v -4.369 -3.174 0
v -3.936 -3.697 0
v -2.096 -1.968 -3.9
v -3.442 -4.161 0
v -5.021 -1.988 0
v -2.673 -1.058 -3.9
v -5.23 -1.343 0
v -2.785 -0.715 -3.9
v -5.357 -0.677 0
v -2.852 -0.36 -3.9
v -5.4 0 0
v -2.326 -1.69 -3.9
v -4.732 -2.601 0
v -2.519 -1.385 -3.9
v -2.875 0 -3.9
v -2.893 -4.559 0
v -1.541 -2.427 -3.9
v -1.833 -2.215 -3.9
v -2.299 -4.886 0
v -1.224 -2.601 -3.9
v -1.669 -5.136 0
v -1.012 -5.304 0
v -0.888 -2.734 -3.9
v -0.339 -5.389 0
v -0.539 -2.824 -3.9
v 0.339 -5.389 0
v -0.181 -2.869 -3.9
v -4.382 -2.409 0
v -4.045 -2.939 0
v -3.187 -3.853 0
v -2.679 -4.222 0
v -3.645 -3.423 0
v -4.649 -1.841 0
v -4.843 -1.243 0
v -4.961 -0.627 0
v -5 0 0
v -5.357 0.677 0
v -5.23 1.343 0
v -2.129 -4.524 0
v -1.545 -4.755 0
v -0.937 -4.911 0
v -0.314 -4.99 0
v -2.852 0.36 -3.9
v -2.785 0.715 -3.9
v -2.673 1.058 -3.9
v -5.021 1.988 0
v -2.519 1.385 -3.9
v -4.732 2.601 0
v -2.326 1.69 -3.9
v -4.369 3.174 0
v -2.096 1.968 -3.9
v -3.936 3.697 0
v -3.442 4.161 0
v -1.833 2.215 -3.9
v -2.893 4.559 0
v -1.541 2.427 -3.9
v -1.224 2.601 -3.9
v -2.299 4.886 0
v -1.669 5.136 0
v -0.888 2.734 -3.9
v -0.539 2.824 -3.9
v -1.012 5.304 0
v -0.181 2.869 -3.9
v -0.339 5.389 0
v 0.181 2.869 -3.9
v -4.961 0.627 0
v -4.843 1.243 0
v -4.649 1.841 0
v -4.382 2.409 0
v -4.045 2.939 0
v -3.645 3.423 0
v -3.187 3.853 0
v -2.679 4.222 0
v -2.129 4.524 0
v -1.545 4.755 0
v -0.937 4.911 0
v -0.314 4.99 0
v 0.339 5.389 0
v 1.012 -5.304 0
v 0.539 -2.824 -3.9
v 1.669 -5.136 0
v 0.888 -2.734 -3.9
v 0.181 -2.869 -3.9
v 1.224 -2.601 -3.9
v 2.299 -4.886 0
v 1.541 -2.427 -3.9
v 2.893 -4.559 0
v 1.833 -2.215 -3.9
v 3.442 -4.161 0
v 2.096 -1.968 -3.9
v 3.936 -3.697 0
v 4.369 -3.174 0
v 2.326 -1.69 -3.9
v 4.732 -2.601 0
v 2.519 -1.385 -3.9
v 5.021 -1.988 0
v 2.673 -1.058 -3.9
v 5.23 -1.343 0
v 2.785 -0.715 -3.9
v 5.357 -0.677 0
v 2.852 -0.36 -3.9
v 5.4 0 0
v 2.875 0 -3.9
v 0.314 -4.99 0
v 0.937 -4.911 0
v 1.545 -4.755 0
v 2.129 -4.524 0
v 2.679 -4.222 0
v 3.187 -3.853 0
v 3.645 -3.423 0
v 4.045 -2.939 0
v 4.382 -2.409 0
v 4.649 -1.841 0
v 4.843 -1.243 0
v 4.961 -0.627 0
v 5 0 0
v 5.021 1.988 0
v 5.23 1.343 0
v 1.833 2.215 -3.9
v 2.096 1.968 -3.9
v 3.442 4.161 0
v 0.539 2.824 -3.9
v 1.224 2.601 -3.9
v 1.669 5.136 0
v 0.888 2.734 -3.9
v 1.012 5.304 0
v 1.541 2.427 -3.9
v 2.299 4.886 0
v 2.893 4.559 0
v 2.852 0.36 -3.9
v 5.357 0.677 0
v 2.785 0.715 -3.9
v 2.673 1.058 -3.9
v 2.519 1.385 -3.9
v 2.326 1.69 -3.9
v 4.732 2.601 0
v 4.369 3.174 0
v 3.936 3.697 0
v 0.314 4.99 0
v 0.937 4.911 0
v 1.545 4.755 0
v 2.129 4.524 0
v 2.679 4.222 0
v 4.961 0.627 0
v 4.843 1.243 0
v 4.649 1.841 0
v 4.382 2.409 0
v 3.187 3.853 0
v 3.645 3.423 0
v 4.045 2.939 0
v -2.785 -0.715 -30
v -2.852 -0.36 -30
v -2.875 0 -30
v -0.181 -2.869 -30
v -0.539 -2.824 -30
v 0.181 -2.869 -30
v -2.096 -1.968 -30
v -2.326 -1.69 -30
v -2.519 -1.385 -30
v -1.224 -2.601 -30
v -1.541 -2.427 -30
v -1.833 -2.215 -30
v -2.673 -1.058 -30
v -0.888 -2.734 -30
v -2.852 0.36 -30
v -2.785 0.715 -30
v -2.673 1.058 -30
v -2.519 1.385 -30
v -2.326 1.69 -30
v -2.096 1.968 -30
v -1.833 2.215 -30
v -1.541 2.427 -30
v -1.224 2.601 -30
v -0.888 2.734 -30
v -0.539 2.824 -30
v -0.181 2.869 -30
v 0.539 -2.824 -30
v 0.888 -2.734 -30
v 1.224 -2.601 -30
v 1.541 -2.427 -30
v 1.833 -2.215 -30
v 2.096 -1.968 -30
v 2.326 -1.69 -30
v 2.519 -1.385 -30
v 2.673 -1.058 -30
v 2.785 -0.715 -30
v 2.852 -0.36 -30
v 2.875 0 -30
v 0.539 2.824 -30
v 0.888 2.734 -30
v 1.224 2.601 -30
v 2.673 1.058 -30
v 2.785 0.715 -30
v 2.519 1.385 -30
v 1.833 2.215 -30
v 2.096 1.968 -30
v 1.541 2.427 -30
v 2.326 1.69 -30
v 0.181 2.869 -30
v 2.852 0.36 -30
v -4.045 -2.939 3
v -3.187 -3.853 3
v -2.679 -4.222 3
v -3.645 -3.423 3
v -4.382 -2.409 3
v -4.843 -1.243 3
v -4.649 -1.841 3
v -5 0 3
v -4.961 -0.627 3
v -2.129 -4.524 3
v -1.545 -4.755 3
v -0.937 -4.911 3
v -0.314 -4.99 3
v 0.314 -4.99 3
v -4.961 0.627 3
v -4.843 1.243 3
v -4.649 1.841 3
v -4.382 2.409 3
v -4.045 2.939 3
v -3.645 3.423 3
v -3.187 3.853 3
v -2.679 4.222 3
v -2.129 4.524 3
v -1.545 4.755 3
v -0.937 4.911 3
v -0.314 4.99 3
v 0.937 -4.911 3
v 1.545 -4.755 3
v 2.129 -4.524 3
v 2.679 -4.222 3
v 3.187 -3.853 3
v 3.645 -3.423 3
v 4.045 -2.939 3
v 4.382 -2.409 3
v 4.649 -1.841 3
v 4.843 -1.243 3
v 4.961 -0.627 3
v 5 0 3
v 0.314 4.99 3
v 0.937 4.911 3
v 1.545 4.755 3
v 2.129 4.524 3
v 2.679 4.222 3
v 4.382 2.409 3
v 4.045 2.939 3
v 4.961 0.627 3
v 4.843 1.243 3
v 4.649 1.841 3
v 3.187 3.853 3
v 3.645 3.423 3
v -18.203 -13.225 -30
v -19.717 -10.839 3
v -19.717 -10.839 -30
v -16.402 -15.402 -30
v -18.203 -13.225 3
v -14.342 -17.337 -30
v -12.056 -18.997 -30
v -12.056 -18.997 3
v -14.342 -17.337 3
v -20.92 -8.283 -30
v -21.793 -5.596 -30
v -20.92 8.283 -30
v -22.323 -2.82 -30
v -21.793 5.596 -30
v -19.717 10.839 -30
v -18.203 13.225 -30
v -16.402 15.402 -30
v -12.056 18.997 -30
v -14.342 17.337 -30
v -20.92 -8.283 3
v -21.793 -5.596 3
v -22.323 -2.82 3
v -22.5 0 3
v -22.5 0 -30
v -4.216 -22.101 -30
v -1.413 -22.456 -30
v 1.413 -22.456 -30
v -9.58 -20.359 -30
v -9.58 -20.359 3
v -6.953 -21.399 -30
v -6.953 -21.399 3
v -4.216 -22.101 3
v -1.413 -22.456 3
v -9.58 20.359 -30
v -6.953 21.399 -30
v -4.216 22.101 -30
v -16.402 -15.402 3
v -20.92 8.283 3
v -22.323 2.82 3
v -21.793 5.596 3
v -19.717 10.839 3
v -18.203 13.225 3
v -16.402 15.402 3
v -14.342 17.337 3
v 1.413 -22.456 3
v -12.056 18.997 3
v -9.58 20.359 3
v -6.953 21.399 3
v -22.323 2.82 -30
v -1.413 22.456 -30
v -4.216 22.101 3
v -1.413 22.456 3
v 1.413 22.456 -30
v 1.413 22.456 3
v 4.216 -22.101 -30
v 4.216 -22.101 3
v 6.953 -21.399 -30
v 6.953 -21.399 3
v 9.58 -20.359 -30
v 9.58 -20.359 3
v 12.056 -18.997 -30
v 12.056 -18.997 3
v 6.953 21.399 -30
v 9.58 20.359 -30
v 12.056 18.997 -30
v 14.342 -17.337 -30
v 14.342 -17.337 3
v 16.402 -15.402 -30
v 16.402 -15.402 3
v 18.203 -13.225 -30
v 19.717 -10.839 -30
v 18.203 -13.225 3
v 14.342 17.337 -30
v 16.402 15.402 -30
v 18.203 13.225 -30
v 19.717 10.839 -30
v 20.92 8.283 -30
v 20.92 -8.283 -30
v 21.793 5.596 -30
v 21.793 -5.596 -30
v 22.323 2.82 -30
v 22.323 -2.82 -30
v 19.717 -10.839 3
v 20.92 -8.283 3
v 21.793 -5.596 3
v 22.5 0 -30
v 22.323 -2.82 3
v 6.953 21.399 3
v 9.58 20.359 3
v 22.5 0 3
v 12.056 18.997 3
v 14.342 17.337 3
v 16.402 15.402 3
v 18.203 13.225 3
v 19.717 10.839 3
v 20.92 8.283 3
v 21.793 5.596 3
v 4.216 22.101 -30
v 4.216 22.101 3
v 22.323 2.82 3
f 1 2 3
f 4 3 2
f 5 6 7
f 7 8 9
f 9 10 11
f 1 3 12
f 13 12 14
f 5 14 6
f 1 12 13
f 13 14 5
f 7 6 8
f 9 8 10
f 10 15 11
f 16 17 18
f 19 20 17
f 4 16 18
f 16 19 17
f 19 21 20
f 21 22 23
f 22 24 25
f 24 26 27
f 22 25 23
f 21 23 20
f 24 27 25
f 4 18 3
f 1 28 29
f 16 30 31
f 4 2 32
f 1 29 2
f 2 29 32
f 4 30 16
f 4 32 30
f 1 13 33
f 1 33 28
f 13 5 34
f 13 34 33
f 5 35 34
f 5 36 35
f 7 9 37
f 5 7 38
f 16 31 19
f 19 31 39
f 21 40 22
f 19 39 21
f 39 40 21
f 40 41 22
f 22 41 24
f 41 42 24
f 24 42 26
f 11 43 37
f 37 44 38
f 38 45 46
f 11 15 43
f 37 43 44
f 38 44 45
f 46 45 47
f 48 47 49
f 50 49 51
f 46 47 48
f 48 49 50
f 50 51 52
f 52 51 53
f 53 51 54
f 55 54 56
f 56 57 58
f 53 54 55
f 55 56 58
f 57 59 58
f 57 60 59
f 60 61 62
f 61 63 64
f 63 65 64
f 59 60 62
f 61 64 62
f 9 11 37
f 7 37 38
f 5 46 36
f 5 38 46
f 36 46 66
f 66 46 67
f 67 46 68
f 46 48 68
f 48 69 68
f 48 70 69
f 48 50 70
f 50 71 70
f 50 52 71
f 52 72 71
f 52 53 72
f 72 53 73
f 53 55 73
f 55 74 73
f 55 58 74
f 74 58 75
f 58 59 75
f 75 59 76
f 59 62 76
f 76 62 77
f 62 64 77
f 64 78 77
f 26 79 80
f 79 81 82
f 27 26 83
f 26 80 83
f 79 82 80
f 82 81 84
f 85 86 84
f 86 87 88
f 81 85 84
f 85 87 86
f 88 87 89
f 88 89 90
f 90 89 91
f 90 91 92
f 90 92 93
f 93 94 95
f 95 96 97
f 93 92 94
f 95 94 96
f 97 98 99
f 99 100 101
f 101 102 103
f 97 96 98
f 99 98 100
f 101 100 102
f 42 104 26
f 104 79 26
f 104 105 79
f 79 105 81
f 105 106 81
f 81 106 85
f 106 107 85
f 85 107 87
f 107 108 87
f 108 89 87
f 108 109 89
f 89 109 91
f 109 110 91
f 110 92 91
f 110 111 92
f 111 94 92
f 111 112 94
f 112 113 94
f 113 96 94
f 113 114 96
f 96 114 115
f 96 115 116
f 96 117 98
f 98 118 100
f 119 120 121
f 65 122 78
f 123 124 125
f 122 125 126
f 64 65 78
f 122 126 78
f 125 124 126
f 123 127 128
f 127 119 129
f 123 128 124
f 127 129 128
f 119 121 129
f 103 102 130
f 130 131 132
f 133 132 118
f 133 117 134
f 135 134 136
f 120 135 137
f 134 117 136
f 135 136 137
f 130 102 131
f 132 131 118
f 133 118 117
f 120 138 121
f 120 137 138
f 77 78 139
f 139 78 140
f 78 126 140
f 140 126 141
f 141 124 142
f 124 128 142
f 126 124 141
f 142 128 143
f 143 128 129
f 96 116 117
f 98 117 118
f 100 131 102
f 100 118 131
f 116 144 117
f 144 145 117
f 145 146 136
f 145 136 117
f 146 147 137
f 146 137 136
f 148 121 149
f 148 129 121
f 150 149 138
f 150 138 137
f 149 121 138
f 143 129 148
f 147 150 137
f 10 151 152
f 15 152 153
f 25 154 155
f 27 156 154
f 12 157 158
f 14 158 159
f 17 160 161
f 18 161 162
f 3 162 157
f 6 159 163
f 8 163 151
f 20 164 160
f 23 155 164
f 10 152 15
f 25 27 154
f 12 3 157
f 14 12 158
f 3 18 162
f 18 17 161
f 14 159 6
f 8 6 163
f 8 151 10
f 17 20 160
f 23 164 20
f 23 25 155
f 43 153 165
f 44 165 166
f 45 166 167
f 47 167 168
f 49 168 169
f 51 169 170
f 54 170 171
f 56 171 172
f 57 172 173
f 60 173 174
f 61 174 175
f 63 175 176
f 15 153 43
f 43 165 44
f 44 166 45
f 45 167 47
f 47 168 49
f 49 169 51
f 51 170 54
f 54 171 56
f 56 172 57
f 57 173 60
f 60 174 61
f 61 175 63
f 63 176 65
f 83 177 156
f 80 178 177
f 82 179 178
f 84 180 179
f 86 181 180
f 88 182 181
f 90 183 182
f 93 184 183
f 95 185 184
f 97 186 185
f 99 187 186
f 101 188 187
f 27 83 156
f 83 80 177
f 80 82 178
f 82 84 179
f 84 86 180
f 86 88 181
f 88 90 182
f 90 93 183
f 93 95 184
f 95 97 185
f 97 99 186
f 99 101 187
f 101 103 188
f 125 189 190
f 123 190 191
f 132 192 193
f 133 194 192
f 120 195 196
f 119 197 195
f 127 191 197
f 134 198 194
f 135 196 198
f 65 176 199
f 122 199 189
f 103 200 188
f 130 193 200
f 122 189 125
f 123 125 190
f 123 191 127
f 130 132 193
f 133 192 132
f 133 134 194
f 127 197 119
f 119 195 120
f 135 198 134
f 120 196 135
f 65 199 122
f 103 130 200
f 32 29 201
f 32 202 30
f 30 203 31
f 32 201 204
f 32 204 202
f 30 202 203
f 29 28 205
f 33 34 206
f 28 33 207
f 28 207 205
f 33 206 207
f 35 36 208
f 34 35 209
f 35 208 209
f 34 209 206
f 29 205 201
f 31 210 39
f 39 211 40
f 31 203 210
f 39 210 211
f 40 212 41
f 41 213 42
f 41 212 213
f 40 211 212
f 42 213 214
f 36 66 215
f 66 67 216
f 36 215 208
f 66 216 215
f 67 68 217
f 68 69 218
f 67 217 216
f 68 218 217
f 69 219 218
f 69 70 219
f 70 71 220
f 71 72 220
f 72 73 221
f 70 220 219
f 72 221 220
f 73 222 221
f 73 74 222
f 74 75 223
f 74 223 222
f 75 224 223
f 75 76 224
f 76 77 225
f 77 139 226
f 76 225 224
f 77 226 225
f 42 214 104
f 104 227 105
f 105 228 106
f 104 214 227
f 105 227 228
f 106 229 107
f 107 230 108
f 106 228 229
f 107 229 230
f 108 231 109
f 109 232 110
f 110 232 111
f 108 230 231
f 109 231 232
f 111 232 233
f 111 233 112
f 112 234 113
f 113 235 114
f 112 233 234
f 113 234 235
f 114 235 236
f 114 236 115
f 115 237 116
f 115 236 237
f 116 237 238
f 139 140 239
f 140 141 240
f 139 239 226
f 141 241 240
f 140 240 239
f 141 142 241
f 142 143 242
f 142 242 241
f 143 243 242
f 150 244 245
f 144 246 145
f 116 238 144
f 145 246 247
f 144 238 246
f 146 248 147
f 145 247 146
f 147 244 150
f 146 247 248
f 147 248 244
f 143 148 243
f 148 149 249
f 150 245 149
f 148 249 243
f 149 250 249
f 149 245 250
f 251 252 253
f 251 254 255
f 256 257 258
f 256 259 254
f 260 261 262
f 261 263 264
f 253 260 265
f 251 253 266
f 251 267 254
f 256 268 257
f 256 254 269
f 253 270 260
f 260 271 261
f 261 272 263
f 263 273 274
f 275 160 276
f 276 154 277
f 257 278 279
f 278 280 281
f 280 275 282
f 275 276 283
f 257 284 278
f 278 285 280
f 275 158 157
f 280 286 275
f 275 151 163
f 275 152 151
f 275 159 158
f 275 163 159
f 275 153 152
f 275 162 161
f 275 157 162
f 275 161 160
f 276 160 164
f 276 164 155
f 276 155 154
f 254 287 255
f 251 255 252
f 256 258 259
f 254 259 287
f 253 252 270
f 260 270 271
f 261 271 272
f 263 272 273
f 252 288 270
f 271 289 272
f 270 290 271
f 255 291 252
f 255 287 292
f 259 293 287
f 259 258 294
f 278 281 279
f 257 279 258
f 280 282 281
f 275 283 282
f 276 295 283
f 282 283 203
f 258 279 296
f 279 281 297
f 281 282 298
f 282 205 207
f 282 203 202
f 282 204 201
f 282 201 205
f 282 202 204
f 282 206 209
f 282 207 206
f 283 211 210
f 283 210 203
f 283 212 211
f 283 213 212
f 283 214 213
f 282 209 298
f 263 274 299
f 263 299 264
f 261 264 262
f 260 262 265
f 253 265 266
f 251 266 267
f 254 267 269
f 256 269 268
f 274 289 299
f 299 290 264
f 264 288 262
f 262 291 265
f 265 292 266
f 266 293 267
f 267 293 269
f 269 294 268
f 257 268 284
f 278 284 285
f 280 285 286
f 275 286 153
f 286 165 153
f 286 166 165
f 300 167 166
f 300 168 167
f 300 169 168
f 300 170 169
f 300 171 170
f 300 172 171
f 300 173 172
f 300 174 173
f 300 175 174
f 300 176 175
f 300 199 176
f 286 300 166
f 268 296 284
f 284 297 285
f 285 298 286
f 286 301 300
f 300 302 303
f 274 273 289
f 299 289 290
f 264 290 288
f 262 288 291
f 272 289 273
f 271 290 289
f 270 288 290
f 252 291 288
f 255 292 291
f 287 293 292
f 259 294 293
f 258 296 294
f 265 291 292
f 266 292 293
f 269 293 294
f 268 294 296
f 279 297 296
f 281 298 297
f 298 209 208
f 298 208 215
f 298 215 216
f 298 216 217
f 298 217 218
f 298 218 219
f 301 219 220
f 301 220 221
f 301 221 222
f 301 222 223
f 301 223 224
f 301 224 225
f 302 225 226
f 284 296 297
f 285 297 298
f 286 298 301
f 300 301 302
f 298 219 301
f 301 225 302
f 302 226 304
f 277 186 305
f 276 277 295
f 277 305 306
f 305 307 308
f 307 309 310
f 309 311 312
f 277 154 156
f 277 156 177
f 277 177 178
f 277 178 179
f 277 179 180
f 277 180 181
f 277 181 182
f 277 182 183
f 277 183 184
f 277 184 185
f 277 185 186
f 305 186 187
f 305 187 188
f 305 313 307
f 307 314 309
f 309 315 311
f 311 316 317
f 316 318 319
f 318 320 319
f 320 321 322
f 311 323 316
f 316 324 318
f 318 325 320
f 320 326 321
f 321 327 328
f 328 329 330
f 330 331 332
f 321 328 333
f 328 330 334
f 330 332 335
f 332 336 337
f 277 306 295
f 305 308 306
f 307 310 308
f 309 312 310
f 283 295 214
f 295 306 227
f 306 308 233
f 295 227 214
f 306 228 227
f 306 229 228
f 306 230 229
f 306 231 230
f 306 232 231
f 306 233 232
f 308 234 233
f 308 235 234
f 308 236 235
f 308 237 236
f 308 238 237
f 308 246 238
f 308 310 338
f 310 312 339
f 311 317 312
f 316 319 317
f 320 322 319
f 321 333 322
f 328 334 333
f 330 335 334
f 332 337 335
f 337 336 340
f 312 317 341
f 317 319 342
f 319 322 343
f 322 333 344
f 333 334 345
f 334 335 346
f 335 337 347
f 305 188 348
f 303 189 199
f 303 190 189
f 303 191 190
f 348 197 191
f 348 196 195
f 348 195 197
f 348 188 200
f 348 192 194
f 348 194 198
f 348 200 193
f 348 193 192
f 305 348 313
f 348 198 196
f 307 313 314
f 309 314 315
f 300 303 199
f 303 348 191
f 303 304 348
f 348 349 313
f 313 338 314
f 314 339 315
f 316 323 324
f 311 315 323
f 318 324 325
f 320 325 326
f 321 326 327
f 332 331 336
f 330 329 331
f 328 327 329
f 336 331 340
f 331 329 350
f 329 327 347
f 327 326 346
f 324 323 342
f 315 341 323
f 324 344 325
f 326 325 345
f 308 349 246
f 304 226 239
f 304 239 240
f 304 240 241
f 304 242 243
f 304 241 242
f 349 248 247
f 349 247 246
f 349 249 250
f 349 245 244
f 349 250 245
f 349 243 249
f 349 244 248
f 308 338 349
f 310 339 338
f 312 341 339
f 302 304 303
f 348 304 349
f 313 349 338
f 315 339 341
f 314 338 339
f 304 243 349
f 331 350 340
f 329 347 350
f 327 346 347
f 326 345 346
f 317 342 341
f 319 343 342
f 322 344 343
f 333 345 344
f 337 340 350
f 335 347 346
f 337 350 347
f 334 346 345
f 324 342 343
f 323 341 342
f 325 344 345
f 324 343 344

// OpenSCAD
$fn = 50;

difference() {
	union() {
		translate(v = [0, 0, -30.0]) {
			cylinder(h = 33, r = 22.5);
		}
	}
	union() {
		translate(v = [0, 0, 0]) {
			rotate(a = [0, 0, 0]) {
				difference() {
					union() {
						translate(v = [0, 0, -33.0]) {
							cylinder(h = 33, r = 2.6);
						}
						translate(v = [0, 0, -3.9]) {
							cylinder(h = 3.9, r1 = 2.875, r2 = 5.4);
						}
						translate(v = [0, 0, -33.0]) {
							cylinder(h = 33, r = 2.875);
						}
						translate(v = [0, 0, -33.0]) {
							cylinder(h = 33, r = 2.6);
						}
					}
					union();
				}
			}
		}
		#cylinder(h = 3, r = 5.0);
	}
}
